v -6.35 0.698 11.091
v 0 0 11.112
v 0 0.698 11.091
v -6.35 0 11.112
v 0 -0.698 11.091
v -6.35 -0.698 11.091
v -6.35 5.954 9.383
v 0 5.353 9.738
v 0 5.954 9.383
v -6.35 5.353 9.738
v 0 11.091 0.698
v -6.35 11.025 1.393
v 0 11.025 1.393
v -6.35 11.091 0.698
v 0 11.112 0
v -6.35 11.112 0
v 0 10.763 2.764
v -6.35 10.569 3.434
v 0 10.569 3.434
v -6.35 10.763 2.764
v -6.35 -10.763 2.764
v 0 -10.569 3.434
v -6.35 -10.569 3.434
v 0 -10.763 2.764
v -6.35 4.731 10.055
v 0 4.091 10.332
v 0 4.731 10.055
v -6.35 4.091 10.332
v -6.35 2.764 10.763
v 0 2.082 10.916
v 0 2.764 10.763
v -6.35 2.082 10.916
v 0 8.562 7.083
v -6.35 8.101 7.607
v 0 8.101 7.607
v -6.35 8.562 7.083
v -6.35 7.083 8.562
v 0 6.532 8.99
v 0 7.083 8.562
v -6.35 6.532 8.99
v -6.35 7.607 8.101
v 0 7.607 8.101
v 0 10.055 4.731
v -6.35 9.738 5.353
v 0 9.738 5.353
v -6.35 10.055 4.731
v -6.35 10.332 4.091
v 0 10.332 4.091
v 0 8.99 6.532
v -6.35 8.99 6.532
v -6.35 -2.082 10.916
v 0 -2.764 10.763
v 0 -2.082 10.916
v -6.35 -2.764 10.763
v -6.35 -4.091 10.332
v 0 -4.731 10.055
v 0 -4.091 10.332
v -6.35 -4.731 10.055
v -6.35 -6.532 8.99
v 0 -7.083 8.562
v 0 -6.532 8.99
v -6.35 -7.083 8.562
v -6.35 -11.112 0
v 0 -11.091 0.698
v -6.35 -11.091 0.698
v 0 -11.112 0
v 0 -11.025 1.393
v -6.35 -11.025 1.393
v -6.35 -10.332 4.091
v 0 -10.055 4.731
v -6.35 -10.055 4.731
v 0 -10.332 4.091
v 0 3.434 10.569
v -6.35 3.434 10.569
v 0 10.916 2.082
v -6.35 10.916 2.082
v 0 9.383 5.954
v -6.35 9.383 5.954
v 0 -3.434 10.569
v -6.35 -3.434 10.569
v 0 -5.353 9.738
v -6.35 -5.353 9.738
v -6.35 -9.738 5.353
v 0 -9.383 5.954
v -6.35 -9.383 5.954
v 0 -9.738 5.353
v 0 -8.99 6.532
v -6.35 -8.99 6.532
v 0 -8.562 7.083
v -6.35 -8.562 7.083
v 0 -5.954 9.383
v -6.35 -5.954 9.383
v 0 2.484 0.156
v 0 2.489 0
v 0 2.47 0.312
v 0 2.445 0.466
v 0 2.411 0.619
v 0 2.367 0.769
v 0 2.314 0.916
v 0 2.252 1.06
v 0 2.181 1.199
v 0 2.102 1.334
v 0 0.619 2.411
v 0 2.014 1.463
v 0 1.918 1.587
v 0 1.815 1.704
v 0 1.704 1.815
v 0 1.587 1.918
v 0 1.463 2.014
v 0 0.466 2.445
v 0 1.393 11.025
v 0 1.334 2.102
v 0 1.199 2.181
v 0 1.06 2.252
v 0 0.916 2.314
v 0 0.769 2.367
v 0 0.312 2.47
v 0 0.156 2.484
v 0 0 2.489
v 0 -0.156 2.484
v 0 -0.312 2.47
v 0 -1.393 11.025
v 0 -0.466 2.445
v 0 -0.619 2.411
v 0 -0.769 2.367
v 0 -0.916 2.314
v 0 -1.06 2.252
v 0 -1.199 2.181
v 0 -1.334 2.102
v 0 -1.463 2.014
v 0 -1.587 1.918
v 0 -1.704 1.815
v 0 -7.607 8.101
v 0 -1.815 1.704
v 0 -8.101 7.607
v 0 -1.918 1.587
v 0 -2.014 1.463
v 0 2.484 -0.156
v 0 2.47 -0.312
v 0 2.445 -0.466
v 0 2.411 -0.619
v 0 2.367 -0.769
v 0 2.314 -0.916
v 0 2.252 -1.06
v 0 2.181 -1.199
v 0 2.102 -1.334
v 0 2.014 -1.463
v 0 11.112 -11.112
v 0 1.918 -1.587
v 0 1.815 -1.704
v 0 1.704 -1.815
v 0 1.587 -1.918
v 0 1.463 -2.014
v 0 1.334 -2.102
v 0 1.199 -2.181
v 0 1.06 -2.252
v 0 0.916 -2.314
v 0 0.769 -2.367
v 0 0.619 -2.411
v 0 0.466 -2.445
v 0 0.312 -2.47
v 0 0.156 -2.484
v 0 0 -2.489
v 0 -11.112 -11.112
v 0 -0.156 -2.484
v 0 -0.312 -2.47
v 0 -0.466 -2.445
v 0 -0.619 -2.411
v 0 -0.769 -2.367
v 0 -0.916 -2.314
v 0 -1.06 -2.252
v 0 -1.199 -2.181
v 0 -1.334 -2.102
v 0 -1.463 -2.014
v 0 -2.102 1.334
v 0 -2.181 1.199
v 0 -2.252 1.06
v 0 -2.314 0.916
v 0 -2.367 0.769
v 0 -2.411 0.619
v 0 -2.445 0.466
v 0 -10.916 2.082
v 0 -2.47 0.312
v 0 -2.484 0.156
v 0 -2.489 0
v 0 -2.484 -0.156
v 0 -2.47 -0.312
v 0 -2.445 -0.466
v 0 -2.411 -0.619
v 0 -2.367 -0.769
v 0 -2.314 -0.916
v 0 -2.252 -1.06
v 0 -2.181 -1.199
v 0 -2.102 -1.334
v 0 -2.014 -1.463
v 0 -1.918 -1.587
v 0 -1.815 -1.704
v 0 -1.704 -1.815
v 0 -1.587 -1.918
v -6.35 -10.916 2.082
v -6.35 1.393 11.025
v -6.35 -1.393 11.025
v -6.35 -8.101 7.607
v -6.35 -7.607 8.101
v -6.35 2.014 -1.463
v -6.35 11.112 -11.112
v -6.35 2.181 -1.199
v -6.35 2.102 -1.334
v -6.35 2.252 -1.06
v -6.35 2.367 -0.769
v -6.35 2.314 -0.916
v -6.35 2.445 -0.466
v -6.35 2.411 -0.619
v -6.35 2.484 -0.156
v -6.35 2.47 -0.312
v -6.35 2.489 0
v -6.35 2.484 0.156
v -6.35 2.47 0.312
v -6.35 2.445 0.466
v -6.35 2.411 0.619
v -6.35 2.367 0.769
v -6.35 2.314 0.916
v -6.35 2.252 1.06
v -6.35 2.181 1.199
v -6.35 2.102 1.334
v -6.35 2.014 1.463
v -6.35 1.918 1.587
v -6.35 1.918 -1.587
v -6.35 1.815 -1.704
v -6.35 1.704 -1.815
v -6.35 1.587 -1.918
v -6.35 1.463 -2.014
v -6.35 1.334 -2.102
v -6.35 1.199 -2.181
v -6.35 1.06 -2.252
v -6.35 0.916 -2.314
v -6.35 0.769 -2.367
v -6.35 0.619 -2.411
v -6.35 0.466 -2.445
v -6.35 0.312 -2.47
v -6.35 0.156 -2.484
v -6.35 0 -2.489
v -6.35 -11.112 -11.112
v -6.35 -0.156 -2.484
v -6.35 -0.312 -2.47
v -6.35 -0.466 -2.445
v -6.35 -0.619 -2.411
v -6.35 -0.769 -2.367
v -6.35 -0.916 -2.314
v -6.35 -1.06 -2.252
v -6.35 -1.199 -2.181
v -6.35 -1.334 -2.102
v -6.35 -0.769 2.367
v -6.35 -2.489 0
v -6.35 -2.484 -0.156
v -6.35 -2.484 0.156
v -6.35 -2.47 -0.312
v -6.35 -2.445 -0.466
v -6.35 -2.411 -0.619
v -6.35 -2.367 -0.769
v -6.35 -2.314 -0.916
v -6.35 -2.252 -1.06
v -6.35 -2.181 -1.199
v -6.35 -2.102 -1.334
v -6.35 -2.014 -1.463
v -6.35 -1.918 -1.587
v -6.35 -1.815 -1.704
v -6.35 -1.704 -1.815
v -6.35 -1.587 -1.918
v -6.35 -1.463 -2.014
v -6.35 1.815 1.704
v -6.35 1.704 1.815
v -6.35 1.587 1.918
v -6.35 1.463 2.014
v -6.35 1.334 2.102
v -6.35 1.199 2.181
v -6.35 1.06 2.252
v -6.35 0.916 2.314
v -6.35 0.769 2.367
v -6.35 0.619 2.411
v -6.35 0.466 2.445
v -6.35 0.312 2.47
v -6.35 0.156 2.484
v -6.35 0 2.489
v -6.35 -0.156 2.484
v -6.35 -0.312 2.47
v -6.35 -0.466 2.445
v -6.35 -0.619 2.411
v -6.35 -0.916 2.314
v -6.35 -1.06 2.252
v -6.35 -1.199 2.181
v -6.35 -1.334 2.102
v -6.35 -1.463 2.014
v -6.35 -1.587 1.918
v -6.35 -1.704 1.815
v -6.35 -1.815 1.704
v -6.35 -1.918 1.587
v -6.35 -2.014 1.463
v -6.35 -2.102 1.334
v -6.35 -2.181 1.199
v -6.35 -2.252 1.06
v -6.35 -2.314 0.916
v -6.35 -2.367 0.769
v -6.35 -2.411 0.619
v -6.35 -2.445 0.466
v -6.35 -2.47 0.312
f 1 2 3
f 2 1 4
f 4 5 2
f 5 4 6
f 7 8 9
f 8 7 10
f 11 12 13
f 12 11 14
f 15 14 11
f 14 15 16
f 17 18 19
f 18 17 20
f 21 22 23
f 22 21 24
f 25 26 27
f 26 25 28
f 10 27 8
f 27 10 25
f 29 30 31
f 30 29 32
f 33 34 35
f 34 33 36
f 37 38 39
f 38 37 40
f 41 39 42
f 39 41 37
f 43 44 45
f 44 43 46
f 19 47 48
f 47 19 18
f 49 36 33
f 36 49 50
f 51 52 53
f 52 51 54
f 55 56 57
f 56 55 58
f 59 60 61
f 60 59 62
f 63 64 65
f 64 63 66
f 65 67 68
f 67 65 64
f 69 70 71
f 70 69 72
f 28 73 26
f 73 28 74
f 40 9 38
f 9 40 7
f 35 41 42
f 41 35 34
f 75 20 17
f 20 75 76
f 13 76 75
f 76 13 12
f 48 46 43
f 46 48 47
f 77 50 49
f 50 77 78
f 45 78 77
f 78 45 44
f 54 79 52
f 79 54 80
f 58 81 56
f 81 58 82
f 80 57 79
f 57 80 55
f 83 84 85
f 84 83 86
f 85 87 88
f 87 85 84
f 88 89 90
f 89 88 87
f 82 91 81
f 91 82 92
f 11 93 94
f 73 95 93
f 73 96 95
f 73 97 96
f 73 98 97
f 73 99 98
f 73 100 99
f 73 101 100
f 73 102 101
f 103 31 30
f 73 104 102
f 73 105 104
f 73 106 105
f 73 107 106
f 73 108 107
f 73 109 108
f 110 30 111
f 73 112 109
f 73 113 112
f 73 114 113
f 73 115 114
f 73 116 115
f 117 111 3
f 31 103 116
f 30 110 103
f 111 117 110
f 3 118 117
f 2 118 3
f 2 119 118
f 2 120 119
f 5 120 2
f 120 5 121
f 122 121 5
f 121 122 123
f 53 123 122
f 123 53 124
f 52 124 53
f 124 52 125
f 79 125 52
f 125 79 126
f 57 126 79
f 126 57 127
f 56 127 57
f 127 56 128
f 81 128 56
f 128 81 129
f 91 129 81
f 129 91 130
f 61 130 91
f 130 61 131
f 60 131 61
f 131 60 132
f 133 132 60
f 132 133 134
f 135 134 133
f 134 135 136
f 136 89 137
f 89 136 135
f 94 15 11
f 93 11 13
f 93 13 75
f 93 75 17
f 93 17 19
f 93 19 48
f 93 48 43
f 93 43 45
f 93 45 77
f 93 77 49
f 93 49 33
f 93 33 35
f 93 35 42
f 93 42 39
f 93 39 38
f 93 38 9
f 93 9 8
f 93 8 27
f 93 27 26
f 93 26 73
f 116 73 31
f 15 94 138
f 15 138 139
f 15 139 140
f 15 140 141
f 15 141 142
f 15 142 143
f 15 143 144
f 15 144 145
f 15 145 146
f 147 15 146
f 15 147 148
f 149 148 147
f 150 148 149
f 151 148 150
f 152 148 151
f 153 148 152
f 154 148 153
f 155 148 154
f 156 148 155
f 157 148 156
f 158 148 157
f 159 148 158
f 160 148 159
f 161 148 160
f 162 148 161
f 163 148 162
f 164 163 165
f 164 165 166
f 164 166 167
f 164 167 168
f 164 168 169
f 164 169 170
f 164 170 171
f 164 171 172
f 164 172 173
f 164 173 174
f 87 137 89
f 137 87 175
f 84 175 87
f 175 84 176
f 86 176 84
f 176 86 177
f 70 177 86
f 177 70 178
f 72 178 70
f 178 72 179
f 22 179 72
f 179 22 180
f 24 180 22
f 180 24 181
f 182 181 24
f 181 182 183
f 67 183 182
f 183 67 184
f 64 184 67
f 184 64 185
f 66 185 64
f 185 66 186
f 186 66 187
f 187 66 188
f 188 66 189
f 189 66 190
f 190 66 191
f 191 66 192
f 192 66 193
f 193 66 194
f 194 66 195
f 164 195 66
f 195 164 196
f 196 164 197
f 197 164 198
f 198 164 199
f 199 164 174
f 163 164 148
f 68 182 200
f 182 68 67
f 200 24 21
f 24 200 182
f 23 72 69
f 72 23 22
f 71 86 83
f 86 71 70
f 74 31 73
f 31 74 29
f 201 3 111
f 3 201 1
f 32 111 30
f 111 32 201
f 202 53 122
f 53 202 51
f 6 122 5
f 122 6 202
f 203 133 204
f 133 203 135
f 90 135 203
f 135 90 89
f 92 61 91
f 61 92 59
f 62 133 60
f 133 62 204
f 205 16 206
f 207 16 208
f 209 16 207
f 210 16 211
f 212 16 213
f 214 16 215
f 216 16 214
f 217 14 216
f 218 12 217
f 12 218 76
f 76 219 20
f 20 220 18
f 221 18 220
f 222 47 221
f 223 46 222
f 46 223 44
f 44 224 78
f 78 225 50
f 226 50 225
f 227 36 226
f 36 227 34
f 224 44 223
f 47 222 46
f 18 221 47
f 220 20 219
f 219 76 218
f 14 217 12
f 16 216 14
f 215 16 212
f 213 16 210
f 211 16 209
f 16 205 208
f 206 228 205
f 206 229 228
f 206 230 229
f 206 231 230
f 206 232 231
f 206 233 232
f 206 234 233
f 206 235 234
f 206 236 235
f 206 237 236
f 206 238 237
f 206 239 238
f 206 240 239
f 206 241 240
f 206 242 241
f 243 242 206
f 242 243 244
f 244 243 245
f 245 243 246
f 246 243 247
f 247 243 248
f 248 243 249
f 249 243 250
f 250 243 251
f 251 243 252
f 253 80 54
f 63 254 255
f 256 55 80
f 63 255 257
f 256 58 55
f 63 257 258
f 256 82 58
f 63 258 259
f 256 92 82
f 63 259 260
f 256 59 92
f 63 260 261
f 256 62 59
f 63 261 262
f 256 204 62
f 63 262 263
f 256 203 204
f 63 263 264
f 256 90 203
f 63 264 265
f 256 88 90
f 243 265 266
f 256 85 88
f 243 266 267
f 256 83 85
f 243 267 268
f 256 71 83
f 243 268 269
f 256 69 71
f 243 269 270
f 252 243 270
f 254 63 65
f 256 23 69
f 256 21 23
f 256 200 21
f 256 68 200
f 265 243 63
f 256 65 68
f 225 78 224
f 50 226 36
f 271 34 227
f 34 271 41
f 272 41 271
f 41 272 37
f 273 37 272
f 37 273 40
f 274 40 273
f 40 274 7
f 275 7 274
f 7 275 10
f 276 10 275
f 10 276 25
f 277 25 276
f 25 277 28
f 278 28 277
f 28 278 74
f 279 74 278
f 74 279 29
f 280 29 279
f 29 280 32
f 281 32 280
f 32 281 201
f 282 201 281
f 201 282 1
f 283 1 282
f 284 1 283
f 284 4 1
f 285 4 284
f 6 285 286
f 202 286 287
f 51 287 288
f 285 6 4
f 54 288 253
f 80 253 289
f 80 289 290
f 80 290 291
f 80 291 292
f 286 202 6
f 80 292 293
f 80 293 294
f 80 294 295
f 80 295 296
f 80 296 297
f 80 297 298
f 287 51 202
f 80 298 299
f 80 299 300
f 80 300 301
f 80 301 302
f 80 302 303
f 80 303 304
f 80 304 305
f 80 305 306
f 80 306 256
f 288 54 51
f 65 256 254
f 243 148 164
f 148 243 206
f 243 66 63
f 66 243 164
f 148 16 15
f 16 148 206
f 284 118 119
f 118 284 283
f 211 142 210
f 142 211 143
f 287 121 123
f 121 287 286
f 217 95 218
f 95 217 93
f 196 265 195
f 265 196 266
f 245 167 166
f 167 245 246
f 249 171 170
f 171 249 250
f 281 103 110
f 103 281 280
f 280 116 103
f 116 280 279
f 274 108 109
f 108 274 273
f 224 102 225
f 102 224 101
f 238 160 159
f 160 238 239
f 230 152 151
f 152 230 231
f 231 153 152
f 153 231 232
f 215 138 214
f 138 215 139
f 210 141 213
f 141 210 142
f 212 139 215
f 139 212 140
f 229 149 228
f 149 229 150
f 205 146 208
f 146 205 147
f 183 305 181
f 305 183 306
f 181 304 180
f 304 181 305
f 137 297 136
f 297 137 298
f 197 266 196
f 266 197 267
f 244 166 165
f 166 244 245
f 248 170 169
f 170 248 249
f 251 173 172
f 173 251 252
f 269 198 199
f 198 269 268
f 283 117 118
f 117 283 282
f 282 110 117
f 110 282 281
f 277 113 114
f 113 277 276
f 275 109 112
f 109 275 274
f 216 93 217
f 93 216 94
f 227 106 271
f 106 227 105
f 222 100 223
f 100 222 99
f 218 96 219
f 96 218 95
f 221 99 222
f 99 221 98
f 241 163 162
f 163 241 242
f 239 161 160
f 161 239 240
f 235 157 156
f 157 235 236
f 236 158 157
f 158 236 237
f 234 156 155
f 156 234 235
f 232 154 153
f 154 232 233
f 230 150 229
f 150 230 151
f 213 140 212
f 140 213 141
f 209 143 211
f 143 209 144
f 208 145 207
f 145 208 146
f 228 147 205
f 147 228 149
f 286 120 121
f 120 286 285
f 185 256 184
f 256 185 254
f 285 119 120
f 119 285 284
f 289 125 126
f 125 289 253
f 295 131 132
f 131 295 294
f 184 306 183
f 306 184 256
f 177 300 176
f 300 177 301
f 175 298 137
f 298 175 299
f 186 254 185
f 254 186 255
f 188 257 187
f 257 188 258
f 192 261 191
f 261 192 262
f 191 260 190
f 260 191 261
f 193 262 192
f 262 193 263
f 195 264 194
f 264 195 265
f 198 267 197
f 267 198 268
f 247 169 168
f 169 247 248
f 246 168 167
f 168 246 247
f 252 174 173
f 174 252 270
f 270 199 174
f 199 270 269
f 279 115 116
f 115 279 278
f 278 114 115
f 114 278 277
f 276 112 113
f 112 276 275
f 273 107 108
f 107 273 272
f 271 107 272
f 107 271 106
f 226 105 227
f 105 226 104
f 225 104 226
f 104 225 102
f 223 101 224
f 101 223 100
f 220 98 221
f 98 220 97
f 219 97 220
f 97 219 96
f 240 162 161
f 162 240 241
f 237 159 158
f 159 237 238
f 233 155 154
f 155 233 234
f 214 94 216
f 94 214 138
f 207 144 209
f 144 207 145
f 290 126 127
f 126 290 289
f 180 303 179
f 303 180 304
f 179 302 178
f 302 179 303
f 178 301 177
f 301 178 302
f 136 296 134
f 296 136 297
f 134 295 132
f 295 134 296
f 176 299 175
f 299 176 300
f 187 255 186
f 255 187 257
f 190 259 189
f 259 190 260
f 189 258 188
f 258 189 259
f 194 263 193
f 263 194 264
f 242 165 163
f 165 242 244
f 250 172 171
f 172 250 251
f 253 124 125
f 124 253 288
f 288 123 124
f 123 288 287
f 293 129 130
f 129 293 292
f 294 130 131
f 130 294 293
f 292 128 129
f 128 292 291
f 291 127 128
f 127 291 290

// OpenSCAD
$fn=100;

//
// Dimension Definitions
//
in_to_mm = 25.4;
ten_32_tap = 0.159/2 * in_to_mm;
ten_32_close_fit = 0.196/2 * in_to_mm;

plate_thickness = 0.25 * in_to_mm;
plate_width = 0.875 * in_to_mm;
plate_height = 0.5 * in_to_mm;

difference()
{
union()
{
rotate([0,-90,0])
cylinder(r=plate_width/2, h=plate_thickness);

translate([-plate_thickness, -plate_width/2, -plate_width/2])
cube([plate_thickness,plate_width,plate_width/2]);
}

rotate([0,-90,0])
cylinder(r=ten_32_close_fit, h=plate_thickness);

}
